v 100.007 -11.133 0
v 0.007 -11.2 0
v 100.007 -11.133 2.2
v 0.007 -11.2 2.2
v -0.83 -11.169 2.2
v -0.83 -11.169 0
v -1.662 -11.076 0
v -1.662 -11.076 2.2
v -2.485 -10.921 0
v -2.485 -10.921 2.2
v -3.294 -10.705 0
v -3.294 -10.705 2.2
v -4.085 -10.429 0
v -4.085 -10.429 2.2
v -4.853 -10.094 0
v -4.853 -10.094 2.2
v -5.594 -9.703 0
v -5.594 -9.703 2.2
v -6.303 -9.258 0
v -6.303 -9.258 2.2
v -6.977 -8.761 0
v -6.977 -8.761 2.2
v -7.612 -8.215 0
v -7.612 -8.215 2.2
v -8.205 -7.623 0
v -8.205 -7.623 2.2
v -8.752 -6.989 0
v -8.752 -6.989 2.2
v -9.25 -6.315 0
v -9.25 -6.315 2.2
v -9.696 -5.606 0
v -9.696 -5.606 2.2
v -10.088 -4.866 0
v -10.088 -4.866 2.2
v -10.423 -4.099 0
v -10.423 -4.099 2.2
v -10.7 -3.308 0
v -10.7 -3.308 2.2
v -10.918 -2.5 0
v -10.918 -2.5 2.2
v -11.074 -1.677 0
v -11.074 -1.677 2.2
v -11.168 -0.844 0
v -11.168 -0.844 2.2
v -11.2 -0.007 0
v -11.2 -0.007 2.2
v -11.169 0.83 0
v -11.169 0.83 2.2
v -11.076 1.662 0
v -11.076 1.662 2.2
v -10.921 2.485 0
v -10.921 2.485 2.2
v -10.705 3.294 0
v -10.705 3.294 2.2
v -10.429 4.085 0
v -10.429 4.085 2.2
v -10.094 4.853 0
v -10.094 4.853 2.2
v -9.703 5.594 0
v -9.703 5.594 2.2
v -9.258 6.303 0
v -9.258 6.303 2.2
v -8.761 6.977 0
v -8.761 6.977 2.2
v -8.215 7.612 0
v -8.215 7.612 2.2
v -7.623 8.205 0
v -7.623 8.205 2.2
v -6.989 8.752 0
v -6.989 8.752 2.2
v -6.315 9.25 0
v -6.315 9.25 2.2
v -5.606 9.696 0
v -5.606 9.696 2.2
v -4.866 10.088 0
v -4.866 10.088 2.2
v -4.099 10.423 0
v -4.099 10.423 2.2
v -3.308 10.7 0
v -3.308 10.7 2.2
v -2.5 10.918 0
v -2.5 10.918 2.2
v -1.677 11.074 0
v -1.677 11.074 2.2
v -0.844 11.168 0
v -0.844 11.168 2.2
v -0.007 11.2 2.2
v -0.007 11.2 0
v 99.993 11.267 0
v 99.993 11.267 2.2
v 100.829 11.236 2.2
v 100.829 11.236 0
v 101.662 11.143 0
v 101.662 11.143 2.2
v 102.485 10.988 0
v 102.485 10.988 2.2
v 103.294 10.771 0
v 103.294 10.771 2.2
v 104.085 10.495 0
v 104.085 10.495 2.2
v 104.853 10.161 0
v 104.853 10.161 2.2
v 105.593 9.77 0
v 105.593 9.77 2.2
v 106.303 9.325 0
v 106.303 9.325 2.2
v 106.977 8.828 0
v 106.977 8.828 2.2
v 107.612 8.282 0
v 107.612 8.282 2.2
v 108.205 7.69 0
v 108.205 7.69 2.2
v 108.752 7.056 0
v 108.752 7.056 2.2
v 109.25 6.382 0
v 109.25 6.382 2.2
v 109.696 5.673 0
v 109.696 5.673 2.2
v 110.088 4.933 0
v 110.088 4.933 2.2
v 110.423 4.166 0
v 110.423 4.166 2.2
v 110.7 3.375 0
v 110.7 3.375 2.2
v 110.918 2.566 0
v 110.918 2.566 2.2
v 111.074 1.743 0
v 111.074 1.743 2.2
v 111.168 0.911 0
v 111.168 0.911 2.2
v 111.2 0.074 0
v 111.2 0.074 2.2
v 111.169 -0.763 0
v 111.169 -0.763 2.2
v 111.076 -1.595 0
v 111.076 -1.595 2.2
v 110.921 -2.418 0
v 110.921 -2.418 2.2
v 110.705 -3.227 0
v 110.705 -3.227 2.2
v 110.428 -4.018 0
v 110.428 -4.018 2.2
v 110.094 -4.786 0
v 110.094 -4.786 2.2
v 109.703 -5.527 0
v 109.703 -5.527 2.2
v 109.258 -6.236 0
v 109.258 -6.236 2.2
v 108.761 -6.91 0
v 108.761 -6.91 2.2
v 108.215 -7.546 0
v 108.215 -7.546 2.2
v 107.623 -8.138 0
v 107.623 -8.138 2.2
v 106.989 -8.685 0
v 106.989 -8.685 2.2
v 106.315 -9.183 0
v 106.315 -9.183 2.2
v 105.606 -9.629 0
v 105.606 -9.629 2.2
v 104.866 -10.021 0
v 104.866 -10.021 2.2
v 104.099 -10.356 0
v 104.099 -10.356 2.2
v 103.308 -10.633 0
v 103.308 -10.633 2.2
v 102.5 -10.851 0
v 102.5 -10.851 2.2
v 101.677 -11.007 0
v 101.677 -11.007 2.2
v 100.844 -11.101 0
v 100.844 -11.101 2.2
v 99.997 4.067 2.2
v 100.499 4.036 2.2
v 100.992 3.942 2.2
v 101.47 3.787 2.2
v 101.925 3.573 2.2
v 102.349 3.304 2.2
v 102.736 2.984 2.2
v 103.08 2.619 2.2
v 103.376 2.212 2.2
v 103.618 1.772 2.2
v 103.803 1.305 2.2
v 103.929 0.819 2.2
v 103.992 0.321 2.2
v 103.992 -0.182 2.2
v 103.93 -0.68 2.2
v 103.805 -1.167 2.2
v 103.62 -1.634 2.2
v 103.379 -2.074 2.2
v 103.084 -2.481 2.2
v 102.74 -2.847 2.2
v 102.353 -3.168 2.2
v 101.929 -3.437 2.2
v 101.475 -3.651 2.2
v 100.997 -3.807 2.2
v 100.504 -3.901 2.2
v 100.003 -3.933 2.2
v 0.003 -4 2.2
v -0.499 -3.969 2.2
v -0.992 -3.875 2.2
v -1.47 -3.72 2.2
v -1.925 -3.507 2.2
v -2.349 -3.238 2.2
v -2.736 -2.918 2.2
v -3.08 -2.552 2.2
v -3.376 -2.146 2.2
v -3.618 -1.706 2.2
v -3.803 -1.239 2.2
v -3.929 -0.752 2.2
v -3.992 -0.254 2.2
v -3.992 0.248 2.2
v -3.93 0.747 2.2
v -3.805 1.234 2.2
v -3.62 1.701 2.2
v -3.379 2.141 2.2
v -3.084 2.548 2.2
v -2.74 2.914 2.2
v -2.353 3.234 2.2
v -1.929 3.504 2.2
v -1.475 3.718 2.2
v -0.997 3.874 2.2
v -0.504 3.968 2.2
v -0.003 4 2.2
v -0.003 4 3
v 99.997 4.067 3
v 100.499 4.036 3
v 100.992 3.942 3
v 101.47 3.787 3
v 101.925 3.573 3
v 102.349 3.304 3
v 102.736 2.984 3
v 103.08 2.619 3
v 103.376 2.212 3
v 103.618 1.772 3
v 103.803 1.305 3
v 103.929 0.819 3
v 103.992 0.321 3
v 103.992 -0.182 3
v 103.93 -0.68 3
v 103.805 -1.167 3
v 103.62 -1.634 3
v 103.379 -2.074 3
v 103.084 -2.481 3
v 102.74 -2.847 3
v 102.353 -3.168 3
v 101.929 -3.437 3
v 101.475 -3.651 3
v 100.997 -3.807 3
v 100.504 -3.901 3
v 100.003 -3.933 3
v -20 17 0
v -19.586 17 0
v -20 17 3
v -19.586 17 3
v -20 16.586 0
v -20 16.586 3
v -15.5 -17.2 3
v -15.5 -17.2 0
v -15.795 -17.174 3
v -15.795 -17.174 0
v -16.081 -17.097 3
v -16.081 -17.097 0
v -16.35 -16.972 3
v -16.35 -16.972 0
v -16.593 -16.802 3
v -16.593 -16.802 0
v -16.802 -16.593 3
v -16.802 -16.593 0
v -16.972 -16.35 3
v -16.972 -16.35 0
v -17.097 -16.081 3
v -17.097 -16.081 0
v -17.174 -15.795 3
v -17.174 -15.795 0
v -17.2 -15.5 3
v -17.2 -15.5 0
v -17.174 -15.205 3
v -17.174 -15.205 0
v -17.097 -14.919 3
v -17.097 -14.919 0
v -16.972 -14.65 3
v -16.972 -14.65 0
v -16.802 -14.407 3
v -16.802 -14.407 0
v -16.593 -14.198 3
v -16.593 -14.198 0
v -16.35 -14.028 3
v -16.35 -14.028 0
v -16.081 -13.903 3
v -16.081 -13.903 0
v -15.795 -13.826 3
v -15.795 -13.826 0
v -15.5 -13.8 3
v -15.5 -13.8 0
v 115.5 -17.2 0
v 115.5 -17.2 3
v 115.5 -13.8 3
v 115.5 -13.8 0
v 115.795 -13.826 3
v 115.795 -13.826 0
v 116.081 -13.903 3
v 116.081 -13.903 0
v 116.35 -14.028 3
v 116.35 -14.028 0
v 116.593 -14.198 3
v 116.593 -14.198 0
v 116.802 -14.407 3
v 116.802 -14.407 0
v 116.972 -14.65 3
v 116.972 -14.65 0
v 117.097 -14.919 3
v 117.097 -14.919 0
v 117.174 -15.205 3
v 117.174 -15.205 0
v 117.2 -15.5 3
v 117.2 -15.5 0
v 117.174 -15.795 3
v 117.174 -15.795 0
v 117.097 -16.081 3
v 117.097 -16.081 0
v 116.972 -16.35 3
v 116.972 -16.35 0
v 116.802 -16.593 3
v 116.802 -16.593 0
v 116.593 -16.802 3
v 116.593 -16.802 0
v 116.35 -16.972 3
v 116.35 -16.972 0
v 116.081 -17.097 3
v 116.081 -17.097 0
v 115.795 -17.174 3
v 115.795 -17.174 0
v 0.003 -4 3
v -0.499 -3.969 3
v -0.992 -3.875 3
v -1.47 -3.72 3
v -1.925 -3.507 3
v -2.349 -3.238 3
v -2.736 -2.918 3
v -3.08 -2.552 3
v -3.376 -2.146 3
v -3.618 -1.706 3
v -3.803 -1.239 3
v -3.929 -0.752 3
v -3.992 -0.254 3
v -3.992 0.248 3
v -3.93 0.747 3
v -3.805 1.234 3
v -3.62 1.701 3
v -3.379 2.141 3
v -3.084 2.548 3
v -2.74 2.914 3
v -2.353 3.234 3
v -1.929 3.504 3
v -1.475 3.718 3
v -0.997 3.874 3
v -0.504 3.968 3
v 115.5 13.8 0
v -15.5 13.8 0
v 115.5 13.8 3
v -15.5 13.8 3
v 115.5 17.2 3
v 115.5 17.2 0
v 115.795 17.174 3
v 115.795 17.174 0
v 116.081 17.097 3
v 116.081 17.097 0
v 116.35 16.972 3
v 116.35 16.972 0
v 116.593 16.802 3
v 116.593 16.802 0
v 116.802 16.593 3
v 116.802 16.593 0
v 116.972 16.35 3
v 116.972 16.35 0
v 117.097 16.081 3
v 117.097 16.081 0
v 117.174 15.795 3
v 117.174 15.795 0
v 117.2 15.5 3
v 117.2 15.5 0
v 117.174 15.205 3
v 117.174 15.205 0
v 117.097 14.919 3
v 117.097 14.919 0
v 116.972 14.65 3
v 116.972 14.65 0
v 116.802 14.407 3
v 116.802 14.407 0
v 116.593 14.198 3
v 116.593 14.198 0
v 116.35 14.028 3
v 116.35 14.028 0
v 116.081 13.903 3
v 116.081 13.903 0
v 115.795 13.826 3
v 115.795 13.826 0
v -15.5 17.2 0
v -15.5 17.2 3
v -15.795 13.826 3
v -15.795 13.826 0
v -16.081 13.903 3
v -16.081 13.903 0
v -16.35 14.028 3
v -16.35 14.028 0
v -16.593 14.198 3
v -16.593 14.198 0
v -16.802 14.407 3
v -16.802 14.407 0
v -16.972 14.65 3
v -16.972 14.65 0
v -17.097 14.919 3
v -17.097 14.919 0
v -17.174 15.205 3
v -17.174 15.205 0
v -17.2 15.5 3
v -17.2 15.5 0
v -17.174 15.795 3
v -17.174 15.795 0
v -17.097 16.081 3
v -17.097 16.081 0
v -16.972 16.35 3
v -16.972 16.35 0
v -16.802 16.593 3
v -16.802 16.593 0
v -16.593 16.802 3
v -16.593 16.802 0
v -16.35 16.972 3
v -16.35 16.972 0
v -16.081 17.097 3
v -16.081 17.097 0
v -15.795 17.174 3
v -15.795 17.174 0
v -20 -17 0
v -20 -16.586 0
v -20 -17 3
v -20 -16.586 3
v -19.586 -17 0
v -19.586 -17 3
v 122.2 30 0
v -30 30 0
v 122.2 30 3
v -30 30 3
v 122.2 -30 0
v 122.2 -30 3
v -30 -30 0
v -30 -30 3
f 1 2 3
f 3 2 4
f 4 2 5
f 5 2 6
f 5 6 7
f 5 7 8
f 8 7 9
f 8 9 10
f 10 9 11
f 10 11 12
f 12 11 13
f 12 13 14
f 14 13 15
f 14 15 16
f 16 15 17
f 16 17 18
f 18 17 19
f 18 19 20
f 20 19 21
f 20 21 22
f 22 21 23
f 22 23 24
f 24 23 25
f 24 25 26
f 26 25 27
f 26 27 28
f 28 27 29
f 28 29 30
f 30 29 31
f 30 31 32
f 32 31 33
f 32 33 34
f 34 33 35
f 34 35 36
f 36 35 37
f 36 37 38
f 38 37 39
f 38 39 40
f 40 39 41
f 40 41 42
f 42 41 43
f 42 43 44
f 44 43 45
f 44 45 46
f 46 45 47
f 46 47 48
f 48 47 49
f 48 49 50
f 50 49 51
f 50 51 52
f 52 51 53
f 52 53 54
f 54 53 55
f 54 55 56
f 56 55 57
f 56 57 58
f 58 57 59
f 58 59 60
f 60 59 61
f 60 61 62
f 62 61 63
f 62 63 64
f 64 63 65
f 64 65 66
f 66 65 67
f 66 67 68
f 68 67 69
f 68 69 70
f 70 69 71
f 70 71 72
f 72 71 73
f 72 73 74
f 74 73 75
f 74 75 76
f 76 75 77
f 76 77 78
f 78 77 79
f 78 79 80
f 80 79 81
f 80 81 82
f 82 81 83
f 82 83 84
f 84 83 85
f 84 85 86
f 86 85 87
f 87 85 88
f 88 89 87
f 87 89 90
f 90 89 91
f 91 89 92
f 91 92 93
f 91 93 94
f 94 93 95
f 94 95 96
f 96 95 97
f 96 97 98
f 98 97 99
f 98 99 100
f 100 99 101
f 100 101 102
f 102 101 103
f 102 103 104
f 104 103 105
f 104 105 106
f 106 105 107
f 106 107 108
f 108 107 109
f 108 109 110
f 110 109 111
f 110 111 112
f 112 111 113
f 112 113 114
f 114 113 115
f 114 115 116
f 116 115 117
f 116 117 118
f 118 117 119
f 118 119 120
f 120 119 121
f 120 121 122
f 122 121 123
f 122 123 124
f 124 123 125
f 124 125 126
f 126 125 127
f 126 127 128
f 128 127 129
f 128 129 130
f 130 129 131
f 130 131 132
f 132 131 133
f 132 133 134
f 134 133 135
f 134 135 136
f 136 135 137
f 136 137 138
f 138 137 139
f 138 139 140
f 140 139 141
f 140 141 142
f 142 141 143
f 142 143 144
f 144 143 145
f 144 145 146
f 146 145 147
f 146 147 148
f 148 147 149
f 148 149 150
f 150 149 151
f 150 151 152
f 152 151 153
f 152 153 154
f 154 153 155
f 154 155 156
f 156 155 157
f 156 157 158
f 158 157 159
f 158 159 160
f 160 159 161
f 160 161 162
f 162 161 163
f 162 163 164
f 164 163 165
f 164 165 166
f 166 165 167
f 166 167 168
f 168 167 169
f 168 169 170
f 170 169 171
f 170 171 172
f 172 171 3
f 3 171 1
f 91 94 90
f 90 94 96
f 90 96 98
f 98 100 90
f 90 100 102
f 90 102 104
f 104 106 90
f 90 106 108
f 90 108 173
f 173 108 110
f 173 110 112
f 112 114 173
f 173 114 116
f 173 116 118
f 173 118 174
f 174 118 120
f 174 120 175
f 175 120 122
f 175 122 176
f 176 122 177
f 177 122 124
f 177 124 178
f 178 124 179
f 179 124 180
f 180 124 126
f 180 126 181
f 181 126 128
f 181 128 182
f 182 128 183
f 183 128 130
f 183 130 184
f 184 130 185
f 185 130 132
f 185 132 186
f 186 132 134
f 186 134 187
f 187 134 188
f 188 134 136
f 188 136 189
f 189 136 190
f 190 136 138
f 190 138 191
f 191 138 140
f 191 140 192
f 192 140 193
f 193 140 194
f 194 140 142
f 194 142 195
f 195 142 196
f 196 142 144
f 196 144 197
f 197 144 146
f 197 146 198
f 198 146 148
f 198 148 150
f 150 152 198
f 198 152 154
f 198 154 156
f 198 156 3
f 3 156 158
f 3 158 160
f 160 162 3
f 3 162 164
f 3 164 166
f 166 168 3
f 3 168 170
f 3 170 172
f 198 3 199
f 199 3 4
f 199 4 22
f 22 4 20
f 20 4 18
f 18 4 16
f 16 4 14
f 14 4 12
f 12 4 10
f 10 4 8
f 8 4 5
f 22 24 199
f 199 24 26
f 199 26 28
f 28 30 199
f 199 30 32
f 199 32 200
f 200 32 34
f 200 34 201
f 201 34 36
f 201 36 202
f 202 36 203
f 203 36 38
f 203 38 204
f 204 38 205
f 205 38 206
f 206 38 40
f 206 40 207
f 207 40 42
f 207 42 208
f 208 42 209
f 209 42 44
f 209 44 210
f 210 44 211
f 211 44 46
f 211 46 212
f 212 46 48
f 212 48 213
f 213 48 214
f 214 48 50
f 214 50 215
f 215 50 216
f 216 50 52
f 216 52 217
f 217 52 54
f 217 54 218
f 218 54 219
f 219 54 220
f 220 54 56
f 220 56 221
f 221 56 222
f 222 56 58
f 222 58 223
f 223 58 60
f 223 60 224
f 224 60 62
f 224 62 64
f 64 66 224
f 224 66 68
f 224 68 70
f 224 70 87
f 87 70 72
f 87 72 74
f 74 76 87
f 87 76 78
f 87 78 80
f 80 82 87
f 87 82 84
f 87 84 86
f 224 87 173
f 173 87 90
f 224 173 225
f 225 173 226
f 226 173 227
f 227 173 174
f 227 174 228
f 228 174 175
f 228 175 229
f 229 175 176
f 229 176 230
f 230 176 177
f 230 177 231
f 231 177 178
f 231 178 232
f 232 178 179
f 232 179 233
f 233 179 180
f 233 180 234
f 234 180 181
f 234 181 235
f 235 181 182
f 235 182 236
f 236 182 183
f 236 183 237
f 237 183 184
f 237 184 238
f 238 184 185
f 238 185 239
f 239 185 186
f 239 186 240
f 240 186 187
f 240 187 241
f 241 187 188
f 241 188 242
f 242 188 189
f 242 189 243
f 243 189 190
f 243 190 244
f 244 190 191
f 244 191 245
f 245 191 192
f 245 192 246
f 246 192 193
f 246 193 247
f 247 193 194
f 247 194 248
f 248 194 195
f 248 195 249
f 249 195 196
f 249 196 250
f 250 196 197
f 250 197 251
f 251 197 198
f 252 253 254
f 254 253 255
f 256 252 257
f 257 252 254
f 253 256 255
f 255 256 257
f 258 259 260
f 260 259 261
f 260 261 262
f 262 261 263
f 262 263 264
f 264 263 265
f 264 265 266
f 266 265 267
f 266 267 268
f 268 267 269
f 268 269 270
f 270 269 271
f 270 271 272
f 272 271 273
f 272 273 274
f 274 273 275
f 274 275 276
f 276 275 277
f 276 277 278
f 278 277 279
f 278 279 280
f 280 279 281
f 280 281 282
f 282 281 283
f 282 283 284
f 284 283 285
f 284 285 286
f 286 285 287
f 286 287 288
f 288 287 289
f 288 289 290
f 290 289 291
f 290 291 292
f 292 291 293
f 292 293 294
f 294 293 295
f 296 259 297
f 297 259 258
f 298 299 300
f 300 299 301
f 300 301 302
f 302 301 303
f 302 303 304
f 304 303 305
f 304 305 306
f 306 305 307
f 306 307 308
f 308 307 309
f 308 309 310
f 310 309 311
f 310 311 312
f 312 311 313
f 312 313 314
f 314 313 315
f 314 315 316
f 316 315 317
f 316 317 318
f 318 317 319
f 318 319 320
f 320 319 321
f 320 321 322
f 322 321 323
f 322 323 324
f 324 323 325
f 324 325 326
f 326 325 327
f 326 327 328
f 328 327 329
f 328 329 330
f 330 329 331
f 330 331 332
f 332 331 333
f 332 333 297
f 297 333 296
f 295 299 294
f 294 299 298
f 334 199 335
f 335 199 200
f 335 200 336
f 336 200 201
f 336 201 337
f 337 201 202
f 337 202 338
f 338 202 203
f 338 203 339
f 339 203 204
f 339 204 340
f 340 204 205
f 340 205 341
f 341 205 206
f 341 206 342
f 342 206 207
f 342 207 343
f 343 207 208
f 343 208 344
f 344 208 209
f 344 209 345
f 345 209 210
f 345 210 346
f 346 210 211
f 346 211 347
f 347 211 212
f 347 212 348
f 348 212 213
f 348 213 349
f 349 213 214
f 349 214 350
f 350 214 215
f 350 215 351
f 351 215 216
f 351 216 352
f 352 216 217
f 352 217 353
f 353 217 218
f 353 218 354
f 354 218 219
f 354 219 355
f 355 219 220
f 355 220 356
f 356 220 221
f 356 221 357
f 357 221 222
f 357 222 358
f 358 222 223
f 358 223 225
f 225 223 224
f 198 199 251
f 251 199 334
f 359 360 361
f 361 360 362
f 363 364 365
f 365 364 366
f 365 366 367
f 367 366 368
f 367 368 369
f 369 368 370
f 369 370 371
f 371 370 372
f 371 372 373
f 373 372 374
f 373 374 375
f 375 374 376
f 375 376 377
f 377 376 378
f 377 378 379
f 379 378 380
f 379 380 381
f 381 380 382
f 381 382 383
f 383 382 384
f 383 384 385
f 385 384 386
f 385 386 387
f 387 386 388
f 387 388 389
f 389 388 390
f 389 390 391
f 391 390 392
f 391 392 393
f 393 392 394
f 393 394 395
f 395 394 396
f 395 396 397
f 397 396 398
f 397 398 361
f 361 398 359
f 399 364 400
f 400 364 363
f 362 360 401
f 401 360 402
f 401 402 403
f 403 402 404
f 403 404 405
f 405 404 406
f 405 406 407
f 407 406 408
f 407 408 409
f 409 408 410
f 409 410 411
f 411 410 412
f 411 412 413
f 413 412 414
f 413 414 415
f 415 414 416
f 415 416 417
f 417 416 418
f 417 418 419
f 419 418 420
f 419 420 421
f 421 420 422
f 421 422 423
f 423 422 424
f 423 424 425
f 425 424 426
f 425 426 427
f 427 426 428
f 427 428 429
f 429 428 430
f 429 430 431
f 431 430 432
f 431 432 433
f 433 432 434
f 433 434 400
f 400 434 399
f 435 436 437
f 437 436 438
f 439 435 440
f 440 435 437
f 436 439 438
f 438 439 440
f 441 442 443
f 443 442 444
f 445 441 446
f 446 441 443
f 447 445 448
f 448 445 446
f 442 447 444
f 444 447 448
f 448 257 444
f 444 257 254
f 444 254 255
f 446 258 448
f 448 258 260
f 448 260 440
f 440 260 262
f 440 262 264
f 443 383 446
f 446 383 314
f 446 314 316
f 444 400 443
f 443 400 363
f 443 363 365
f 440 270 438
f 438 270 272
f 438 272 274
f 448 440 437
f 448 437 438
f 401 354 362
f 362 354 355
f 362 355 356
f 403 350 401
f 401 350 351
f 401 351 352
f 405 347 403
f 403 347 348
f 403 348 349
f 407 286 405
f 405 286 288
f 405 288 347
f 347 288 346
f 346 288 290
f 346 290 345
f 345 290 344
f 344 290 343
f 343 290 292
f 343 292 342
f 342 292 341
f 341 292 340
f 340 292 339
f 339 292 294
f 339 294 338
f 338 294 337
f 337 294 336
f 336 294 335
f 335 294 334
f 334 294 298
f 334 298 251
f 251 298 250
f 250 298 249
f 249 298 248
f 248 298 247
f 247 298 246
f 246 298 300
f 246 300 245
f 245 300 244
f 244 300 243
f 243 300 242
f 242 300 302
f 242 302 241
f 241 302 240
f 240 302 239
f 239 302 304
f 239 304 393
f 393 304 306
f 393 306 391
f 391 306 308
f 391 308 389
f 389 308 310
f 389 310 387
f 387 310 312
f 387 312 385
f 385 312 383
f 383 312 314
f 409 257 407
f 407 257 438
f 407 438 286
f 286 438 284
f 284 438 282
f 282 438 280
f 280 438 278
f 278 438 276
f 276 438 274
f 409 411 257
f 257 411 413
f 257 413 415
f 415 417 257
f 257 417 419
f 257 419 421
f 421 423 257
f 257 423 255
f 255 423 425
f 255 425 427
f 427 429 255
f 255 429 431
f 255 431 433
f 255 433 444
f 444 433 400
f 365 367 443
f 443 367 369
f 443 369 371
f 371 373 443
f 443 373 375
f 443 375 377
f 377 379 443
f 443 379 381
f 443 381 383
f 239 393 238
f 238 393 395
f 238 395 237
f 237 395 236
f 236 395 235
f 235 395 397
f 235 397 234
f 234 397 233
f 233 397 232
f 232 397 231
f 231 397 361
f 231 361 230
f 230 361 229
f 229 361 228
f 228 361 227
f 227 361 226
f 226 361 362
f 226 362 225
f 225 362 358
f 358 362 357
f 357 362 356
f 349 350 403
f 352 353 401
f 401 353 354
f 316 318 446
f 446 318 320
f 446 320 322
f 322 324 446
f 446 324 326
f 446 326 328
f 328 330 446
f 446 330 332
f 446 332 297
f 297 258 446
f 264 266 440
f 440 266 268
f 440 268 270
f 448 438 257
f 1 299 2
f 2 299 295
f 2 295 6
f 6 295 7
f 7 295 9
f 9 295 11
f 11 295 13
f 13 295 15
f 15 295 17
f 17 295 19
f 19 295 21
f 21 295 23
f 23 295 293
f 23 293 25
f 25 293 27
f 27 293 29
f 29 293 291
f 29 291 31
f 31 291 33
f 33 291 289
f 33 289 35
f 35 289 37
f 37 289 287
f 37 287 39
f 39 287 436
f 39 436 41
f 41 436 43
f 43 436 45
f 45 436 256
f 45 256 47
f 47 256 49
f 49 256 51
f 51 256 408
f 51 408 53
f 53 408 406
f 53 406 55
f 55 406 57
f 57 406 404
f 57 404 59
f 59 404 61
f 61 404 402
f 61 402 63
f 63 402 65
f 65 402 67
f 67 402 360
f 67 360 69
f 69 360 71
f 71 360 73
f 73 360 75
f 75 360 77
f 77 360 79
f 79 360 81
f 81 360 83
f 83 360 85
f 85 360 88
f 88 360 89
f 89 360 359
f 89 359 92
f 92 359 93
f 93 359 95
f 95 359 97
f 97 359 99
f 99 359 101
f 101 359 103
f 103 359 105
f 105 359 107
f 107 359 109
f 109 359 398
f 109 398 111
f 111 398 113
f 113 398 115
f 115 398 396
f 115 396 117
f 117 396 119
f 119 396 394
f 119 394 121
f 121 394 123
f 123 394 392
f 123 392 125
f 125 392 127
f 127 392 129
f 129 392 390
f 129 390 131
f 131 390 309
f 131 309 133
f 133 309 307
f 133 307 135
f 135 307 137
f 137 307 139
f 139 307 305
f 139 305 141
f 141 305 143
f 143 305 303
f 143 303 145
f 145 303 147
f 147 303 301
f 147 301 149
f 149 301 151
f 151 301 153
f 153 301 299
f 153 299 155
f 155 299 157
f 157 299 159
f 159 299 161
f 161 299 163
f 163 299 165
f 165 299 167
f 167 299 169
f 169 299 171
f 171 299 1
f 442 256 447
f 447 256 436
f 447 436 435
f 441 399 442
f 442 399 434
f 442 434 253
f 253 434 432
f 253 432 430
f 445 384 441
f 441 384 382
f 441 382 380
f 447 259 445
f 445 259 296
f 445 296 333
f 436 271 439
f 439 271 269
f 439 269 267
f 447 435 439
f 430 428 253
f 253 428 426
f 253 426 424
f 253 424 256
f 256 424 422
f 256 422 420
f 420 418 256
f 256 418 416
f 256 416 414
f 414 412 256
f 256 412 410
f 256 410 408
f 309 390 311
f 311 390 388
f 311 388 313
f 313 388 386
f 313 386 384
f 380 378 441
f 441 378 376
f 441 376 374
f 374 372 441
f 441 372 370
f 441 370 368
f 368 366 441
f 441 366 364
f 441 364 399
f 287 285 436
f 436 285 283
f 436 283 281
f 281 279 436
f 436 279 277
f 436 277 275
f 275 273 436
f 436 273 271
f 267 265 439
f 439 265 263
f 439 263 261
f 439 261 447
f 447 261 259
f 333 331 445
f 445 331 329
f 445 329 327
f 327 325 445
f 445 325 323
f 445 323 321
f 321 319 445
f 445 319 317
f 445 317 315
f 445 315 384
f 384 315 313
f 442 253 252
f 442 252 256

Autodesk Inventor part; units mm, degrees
ref_plane "YZ Plane" through (0, 0, 0) normal (1, 0, 0) x (0, 1, 0)
ref_plane "XZ Plane" through (0, 0, 0) normal (0, 1, 0) x (-1, 0, 0)
ref_plane "XY Plane" through (0, 0, 0) normal (0, 0, 1) x (1, 0, 0)
sketch "Sketch1" plane through (0, 0, 0) normal (0, 0, 1) x (1, 0, 0)
  line L0 (-20, 16.5858) -> (-16.5858, 20) projected
  line L1 (-20, -16.5858) -> (-20, 16.5858) projected
  line L2 (-16.5858, -20) -> (-20, -16.5858) projected
  line L3 (16.5858, -20) -> (-16.5858, -20) projected
  line L4 (20, -16.5858) -> (16.5858, -20) projected
  line L5 (20, 16.5858) -> (20, -16.5858) projected
  line L6 (16.5858, 20) -> (20, 16.5858) projected
  line L7 (-16.5858, 20) -> (16.5858, 20) projected
  circle A0 centre (15.5, -15.5) radius 1.5 projected
  circle A1 centre (-15.5, 15.5) radius 1.5 projected
  circle A2 centre (-15.5, -15.5) radius 1.5 projected
  circle A3 centre (15.5, 15.5) radius 1.5 projected
  circle A4 centre (0, 0) radius 11 projected
  line L8 (-20, 0) -> (-30, 0) construction
  line L9 (-20, 0) -> (-20, -30)
  line L10 (-20, -30) -> (-30, -30)
  line L11 (-30, -30) -> (-30, 30)
  line L12 (-30, 30) -> (-20, 30)
  line L13 (-20, 30) -> (-20, -30)
  line L14 (-15.5, -17) -> (-20, -17)
  line L15 (-20, 17) -> (-15.5, 17)
  line L16 (0, 0) -> (100, 0.0668) construction
  circle A5 centre (0, 0) radius 3.8 construction
  circle A6 centre (0, 0) radius 4 construction
  line L17 (0, 0) -> (100, 0.0668) construction
  line L18 (0.0027, -4) -> (100.0026, -3.9332)
  line L19 (99.9973, 4.0668) -> (-0.0027, 4)
  arc A7 (-0.0027, 4) -> (0.0027, -4) centre (0, 0) ccw
  arc A8 (100.0026, -3.9332) -> (99.9973, 4.0668) centre (100, 0.0668) ccw
  line L20 (15.5, -15.5) -> (0, -15.5) construction
  line L21 (15.5, -15.5) -> (115.5, -15.5) construction
  line L22 (15.5, 15.5) -> (115.5, 15.5) construction
  line L23 (115.5, 15.5) -> (115.5, -15.5) construction
  circle A9 centre (-15.5, -15.5) radius 1.7 construction
  circle A10 centre (-15.5, 15.5) radius 1.7 construction
  line L24 (-15.5, 15.5) -> (115.5, 15.5) construction
  line L25 (-15.5, 17.2) -> (115.5, 17.2)
  line L26 (115.5, 13.8) -> (-15.5, 13.8)
  arc A11 (-15.5, 17.2) -> (-15.5, 13.8) centre (-15.5, 15.5) ccw
  arc A12 (115.5, 13.8) -> (115.5, 17.2) centre (115.5, 15.5) ccw
  line L27 (-15.5, -15.5) -> (115.5, -15.5) construction
  line L28 (-15.5, -13.8) -> (115.5, -13.8)
  line L29 (115.5, -17.2) -> (-15.5, -17.2)
  arc A13 (-15.5, -13.8) -> (-15.5, -17.2) centre (-15.5, -15.5) ccw
  arc A14 (115.5, -17.2) -> (115.5, -13.8) centre (115.5, -15.5) ccw
  line L30 (117.2, 15.5) -> (122.2, 15.5) construction
  line L31 (-20, 30) -> (122.2, 30)
  line L32 (122.2, 30) -> (122.2, -30)
  line L33 (122.2, -30) -> (-20, -30)
  point P0 (50, 0.0334)
  point P1 (50, 15.5)
  point P2 (50, -15.5)
  point P3 (-19.5858, 17)
  point P4 (19.3858, 17.2)
  point P5 (20, 13.8)
  point P6 (20, 4.0134)
  point P7 (20, -3.9866)
  point P8 (20, -13.8)
  point P9 (19.3858, -17.2)
  point P10 (-19.5858, -17)
  point P11 (-16.3, 17)
  dimension "d0" = 10
  dimension "d1" = 30
  dimension "d2" = 10
  dimension "d3" = 60
  dimension "d6" = 100
  dimension "d7" = 0.2
  dimension "d8" = 100
  dimension "d9" = 0.2
  dimension "d10" = 0.2
  dimension "d11" = 5
extrude "Extrusion1" add sketch "Sketch1" along normal blind 3 contours L0 L15 A11 L26 L5 L19 A4 L18 L28 A13 L14 L2 L1 | L1 L9 L10 L11 L12 L13 | L15 L13 L31 L32 L33 L9 L14 L2 L3 L4 L29 A14 L28 L5 L18 A8 L19 L26 A12 L25 L6 L7 L0 | L0 L7 L6 L25 A11 L15 | L14 A13 L29 L4 L3 L2 | L19 A7 L18 A4 picked at (6.4115, 4.7804)
sketch "Sketch2" plane through (-30, -30, 0) normal (-1, 0, 0) x (0, 0, 1)
  point P0 (0, 30)
sketch "Sketch3" plane through (-30, -30, 0) normal (-1, 0, 0) x (0, 0, 1)
  line L0 (0, 60) -> (0, 0) projected
  line L1 (0, 0) -> (3, 0) projected
  line L2 (3, 60) -> (3, 0) projected
  line L3 (0, 60) -> (3, 60) projected
  line L4 (8, -5) -> (-5, -5)
  line L5 (-5, -5) -> (-5, 65)
  line L6 (-5, 65) -> (8, 65)
  line L7 (8, 65) -> (8, -5)
  line L8 (0, 47.2) -> (0, 43.8) projected
  line L9 (-2.7217, 45.5) -> (3, 45.5)
  circle A0 centre (0.1391, 45.5) radius 1.5
  point P0 (0, 30)
  point P1 (-1.5323, 14.5)
  dimension "d15" = 5
  dimension "d16" = 3
sketch "Sketch4" plane through (0, 0, 0) normal (0, 0, -1) x (-1, 0, 0)
  line L0 (30, 30) -> (30, -30) projected
  line L1 (-122.2, 30) -> (30, 30) projected
  line L2 (-122.2, -30) -> (-122.2, 30) projected
  line L3 (30, -30) -> (-122.2, -30) projected
  line L4 (20, -16.5858) -> (19.5858, -17) projected
  line L5 (20, -17) -> (20, -16.5858) projected
  line L6 (19.5858, -17) -> (20, -17) projected
  arc A0 (15.5, 13.8) -> (15.5, 17.2) centre (15.5, 15.5) ccw projected
  line L7 (-115.5, 13.8) -> (15.5, 13.8) projected
  arc A1 (-115.5, 17.2) -> (-115.5, 13.8) centre (-115.5, 15.5) ccw projected
  line L8 (15.5, 17.2) -> (-115.5, 17.2) projected
  line L9 (-100.0026, -3.9332) -> (-0.0027, -4) projected
  arc A2 (-99.9973, 4.0668) -> (-100.0026, -3.9332) centre (-100, 0.0668) ccw projected
  line L10 (0.0027, 4) -> (-99.9973, 4.0668) projected
  arc A3 (-0.0027, -4) -> (0.0027, 4) centre (0, 0) ccw projected
  line L11 (15.5, -13.8) -> (-115.5, -13.8) projected
  arc A4 (15.5, -17.2) -> (15.5, -13.8) centre (15.5, -15.5) ccw projected
  line L12 (-115.5, -17.2) -> (15.5, -17.2) projected
  arc A5 (-115.5, -13.8) -> (-115.5, -17.2) centre (-115.5, -15.5) ccw projected
  line L13 (19.5858, 17) -> (20, 16.5858) projected
  line L14 (20, 17) -> (19.5858, 17) projected
  line L15 (20, 16.5858) -> (20, 17) projected
  line L16 (0, 0) -> (-100, 0.0668) construction
  line L17 (0.0075, 11.2) -> (-99.9925, 11.2668)
  line L18 (-100.0075, -11.1332) -> (-0.0075, -11.2)
  arc A6 (-0.0075, -11.2) -> (0.0075, 11.2) centre (0, 0) ccw
  arc A7 (-99.9925, 11.2668) -> (-100.0075, -11.1332) centre (-100, 0.0668) ccw
  point P0 (0, 0)
  point P1 (-50, 0.0334)
  dimension "d17" = 22.4
extrude "Extrusion2" cut sketch "Sketch4" against normal blind 2.2 contours A6 L18 A7 L17
properties part number "CombineTestHorizontal"
